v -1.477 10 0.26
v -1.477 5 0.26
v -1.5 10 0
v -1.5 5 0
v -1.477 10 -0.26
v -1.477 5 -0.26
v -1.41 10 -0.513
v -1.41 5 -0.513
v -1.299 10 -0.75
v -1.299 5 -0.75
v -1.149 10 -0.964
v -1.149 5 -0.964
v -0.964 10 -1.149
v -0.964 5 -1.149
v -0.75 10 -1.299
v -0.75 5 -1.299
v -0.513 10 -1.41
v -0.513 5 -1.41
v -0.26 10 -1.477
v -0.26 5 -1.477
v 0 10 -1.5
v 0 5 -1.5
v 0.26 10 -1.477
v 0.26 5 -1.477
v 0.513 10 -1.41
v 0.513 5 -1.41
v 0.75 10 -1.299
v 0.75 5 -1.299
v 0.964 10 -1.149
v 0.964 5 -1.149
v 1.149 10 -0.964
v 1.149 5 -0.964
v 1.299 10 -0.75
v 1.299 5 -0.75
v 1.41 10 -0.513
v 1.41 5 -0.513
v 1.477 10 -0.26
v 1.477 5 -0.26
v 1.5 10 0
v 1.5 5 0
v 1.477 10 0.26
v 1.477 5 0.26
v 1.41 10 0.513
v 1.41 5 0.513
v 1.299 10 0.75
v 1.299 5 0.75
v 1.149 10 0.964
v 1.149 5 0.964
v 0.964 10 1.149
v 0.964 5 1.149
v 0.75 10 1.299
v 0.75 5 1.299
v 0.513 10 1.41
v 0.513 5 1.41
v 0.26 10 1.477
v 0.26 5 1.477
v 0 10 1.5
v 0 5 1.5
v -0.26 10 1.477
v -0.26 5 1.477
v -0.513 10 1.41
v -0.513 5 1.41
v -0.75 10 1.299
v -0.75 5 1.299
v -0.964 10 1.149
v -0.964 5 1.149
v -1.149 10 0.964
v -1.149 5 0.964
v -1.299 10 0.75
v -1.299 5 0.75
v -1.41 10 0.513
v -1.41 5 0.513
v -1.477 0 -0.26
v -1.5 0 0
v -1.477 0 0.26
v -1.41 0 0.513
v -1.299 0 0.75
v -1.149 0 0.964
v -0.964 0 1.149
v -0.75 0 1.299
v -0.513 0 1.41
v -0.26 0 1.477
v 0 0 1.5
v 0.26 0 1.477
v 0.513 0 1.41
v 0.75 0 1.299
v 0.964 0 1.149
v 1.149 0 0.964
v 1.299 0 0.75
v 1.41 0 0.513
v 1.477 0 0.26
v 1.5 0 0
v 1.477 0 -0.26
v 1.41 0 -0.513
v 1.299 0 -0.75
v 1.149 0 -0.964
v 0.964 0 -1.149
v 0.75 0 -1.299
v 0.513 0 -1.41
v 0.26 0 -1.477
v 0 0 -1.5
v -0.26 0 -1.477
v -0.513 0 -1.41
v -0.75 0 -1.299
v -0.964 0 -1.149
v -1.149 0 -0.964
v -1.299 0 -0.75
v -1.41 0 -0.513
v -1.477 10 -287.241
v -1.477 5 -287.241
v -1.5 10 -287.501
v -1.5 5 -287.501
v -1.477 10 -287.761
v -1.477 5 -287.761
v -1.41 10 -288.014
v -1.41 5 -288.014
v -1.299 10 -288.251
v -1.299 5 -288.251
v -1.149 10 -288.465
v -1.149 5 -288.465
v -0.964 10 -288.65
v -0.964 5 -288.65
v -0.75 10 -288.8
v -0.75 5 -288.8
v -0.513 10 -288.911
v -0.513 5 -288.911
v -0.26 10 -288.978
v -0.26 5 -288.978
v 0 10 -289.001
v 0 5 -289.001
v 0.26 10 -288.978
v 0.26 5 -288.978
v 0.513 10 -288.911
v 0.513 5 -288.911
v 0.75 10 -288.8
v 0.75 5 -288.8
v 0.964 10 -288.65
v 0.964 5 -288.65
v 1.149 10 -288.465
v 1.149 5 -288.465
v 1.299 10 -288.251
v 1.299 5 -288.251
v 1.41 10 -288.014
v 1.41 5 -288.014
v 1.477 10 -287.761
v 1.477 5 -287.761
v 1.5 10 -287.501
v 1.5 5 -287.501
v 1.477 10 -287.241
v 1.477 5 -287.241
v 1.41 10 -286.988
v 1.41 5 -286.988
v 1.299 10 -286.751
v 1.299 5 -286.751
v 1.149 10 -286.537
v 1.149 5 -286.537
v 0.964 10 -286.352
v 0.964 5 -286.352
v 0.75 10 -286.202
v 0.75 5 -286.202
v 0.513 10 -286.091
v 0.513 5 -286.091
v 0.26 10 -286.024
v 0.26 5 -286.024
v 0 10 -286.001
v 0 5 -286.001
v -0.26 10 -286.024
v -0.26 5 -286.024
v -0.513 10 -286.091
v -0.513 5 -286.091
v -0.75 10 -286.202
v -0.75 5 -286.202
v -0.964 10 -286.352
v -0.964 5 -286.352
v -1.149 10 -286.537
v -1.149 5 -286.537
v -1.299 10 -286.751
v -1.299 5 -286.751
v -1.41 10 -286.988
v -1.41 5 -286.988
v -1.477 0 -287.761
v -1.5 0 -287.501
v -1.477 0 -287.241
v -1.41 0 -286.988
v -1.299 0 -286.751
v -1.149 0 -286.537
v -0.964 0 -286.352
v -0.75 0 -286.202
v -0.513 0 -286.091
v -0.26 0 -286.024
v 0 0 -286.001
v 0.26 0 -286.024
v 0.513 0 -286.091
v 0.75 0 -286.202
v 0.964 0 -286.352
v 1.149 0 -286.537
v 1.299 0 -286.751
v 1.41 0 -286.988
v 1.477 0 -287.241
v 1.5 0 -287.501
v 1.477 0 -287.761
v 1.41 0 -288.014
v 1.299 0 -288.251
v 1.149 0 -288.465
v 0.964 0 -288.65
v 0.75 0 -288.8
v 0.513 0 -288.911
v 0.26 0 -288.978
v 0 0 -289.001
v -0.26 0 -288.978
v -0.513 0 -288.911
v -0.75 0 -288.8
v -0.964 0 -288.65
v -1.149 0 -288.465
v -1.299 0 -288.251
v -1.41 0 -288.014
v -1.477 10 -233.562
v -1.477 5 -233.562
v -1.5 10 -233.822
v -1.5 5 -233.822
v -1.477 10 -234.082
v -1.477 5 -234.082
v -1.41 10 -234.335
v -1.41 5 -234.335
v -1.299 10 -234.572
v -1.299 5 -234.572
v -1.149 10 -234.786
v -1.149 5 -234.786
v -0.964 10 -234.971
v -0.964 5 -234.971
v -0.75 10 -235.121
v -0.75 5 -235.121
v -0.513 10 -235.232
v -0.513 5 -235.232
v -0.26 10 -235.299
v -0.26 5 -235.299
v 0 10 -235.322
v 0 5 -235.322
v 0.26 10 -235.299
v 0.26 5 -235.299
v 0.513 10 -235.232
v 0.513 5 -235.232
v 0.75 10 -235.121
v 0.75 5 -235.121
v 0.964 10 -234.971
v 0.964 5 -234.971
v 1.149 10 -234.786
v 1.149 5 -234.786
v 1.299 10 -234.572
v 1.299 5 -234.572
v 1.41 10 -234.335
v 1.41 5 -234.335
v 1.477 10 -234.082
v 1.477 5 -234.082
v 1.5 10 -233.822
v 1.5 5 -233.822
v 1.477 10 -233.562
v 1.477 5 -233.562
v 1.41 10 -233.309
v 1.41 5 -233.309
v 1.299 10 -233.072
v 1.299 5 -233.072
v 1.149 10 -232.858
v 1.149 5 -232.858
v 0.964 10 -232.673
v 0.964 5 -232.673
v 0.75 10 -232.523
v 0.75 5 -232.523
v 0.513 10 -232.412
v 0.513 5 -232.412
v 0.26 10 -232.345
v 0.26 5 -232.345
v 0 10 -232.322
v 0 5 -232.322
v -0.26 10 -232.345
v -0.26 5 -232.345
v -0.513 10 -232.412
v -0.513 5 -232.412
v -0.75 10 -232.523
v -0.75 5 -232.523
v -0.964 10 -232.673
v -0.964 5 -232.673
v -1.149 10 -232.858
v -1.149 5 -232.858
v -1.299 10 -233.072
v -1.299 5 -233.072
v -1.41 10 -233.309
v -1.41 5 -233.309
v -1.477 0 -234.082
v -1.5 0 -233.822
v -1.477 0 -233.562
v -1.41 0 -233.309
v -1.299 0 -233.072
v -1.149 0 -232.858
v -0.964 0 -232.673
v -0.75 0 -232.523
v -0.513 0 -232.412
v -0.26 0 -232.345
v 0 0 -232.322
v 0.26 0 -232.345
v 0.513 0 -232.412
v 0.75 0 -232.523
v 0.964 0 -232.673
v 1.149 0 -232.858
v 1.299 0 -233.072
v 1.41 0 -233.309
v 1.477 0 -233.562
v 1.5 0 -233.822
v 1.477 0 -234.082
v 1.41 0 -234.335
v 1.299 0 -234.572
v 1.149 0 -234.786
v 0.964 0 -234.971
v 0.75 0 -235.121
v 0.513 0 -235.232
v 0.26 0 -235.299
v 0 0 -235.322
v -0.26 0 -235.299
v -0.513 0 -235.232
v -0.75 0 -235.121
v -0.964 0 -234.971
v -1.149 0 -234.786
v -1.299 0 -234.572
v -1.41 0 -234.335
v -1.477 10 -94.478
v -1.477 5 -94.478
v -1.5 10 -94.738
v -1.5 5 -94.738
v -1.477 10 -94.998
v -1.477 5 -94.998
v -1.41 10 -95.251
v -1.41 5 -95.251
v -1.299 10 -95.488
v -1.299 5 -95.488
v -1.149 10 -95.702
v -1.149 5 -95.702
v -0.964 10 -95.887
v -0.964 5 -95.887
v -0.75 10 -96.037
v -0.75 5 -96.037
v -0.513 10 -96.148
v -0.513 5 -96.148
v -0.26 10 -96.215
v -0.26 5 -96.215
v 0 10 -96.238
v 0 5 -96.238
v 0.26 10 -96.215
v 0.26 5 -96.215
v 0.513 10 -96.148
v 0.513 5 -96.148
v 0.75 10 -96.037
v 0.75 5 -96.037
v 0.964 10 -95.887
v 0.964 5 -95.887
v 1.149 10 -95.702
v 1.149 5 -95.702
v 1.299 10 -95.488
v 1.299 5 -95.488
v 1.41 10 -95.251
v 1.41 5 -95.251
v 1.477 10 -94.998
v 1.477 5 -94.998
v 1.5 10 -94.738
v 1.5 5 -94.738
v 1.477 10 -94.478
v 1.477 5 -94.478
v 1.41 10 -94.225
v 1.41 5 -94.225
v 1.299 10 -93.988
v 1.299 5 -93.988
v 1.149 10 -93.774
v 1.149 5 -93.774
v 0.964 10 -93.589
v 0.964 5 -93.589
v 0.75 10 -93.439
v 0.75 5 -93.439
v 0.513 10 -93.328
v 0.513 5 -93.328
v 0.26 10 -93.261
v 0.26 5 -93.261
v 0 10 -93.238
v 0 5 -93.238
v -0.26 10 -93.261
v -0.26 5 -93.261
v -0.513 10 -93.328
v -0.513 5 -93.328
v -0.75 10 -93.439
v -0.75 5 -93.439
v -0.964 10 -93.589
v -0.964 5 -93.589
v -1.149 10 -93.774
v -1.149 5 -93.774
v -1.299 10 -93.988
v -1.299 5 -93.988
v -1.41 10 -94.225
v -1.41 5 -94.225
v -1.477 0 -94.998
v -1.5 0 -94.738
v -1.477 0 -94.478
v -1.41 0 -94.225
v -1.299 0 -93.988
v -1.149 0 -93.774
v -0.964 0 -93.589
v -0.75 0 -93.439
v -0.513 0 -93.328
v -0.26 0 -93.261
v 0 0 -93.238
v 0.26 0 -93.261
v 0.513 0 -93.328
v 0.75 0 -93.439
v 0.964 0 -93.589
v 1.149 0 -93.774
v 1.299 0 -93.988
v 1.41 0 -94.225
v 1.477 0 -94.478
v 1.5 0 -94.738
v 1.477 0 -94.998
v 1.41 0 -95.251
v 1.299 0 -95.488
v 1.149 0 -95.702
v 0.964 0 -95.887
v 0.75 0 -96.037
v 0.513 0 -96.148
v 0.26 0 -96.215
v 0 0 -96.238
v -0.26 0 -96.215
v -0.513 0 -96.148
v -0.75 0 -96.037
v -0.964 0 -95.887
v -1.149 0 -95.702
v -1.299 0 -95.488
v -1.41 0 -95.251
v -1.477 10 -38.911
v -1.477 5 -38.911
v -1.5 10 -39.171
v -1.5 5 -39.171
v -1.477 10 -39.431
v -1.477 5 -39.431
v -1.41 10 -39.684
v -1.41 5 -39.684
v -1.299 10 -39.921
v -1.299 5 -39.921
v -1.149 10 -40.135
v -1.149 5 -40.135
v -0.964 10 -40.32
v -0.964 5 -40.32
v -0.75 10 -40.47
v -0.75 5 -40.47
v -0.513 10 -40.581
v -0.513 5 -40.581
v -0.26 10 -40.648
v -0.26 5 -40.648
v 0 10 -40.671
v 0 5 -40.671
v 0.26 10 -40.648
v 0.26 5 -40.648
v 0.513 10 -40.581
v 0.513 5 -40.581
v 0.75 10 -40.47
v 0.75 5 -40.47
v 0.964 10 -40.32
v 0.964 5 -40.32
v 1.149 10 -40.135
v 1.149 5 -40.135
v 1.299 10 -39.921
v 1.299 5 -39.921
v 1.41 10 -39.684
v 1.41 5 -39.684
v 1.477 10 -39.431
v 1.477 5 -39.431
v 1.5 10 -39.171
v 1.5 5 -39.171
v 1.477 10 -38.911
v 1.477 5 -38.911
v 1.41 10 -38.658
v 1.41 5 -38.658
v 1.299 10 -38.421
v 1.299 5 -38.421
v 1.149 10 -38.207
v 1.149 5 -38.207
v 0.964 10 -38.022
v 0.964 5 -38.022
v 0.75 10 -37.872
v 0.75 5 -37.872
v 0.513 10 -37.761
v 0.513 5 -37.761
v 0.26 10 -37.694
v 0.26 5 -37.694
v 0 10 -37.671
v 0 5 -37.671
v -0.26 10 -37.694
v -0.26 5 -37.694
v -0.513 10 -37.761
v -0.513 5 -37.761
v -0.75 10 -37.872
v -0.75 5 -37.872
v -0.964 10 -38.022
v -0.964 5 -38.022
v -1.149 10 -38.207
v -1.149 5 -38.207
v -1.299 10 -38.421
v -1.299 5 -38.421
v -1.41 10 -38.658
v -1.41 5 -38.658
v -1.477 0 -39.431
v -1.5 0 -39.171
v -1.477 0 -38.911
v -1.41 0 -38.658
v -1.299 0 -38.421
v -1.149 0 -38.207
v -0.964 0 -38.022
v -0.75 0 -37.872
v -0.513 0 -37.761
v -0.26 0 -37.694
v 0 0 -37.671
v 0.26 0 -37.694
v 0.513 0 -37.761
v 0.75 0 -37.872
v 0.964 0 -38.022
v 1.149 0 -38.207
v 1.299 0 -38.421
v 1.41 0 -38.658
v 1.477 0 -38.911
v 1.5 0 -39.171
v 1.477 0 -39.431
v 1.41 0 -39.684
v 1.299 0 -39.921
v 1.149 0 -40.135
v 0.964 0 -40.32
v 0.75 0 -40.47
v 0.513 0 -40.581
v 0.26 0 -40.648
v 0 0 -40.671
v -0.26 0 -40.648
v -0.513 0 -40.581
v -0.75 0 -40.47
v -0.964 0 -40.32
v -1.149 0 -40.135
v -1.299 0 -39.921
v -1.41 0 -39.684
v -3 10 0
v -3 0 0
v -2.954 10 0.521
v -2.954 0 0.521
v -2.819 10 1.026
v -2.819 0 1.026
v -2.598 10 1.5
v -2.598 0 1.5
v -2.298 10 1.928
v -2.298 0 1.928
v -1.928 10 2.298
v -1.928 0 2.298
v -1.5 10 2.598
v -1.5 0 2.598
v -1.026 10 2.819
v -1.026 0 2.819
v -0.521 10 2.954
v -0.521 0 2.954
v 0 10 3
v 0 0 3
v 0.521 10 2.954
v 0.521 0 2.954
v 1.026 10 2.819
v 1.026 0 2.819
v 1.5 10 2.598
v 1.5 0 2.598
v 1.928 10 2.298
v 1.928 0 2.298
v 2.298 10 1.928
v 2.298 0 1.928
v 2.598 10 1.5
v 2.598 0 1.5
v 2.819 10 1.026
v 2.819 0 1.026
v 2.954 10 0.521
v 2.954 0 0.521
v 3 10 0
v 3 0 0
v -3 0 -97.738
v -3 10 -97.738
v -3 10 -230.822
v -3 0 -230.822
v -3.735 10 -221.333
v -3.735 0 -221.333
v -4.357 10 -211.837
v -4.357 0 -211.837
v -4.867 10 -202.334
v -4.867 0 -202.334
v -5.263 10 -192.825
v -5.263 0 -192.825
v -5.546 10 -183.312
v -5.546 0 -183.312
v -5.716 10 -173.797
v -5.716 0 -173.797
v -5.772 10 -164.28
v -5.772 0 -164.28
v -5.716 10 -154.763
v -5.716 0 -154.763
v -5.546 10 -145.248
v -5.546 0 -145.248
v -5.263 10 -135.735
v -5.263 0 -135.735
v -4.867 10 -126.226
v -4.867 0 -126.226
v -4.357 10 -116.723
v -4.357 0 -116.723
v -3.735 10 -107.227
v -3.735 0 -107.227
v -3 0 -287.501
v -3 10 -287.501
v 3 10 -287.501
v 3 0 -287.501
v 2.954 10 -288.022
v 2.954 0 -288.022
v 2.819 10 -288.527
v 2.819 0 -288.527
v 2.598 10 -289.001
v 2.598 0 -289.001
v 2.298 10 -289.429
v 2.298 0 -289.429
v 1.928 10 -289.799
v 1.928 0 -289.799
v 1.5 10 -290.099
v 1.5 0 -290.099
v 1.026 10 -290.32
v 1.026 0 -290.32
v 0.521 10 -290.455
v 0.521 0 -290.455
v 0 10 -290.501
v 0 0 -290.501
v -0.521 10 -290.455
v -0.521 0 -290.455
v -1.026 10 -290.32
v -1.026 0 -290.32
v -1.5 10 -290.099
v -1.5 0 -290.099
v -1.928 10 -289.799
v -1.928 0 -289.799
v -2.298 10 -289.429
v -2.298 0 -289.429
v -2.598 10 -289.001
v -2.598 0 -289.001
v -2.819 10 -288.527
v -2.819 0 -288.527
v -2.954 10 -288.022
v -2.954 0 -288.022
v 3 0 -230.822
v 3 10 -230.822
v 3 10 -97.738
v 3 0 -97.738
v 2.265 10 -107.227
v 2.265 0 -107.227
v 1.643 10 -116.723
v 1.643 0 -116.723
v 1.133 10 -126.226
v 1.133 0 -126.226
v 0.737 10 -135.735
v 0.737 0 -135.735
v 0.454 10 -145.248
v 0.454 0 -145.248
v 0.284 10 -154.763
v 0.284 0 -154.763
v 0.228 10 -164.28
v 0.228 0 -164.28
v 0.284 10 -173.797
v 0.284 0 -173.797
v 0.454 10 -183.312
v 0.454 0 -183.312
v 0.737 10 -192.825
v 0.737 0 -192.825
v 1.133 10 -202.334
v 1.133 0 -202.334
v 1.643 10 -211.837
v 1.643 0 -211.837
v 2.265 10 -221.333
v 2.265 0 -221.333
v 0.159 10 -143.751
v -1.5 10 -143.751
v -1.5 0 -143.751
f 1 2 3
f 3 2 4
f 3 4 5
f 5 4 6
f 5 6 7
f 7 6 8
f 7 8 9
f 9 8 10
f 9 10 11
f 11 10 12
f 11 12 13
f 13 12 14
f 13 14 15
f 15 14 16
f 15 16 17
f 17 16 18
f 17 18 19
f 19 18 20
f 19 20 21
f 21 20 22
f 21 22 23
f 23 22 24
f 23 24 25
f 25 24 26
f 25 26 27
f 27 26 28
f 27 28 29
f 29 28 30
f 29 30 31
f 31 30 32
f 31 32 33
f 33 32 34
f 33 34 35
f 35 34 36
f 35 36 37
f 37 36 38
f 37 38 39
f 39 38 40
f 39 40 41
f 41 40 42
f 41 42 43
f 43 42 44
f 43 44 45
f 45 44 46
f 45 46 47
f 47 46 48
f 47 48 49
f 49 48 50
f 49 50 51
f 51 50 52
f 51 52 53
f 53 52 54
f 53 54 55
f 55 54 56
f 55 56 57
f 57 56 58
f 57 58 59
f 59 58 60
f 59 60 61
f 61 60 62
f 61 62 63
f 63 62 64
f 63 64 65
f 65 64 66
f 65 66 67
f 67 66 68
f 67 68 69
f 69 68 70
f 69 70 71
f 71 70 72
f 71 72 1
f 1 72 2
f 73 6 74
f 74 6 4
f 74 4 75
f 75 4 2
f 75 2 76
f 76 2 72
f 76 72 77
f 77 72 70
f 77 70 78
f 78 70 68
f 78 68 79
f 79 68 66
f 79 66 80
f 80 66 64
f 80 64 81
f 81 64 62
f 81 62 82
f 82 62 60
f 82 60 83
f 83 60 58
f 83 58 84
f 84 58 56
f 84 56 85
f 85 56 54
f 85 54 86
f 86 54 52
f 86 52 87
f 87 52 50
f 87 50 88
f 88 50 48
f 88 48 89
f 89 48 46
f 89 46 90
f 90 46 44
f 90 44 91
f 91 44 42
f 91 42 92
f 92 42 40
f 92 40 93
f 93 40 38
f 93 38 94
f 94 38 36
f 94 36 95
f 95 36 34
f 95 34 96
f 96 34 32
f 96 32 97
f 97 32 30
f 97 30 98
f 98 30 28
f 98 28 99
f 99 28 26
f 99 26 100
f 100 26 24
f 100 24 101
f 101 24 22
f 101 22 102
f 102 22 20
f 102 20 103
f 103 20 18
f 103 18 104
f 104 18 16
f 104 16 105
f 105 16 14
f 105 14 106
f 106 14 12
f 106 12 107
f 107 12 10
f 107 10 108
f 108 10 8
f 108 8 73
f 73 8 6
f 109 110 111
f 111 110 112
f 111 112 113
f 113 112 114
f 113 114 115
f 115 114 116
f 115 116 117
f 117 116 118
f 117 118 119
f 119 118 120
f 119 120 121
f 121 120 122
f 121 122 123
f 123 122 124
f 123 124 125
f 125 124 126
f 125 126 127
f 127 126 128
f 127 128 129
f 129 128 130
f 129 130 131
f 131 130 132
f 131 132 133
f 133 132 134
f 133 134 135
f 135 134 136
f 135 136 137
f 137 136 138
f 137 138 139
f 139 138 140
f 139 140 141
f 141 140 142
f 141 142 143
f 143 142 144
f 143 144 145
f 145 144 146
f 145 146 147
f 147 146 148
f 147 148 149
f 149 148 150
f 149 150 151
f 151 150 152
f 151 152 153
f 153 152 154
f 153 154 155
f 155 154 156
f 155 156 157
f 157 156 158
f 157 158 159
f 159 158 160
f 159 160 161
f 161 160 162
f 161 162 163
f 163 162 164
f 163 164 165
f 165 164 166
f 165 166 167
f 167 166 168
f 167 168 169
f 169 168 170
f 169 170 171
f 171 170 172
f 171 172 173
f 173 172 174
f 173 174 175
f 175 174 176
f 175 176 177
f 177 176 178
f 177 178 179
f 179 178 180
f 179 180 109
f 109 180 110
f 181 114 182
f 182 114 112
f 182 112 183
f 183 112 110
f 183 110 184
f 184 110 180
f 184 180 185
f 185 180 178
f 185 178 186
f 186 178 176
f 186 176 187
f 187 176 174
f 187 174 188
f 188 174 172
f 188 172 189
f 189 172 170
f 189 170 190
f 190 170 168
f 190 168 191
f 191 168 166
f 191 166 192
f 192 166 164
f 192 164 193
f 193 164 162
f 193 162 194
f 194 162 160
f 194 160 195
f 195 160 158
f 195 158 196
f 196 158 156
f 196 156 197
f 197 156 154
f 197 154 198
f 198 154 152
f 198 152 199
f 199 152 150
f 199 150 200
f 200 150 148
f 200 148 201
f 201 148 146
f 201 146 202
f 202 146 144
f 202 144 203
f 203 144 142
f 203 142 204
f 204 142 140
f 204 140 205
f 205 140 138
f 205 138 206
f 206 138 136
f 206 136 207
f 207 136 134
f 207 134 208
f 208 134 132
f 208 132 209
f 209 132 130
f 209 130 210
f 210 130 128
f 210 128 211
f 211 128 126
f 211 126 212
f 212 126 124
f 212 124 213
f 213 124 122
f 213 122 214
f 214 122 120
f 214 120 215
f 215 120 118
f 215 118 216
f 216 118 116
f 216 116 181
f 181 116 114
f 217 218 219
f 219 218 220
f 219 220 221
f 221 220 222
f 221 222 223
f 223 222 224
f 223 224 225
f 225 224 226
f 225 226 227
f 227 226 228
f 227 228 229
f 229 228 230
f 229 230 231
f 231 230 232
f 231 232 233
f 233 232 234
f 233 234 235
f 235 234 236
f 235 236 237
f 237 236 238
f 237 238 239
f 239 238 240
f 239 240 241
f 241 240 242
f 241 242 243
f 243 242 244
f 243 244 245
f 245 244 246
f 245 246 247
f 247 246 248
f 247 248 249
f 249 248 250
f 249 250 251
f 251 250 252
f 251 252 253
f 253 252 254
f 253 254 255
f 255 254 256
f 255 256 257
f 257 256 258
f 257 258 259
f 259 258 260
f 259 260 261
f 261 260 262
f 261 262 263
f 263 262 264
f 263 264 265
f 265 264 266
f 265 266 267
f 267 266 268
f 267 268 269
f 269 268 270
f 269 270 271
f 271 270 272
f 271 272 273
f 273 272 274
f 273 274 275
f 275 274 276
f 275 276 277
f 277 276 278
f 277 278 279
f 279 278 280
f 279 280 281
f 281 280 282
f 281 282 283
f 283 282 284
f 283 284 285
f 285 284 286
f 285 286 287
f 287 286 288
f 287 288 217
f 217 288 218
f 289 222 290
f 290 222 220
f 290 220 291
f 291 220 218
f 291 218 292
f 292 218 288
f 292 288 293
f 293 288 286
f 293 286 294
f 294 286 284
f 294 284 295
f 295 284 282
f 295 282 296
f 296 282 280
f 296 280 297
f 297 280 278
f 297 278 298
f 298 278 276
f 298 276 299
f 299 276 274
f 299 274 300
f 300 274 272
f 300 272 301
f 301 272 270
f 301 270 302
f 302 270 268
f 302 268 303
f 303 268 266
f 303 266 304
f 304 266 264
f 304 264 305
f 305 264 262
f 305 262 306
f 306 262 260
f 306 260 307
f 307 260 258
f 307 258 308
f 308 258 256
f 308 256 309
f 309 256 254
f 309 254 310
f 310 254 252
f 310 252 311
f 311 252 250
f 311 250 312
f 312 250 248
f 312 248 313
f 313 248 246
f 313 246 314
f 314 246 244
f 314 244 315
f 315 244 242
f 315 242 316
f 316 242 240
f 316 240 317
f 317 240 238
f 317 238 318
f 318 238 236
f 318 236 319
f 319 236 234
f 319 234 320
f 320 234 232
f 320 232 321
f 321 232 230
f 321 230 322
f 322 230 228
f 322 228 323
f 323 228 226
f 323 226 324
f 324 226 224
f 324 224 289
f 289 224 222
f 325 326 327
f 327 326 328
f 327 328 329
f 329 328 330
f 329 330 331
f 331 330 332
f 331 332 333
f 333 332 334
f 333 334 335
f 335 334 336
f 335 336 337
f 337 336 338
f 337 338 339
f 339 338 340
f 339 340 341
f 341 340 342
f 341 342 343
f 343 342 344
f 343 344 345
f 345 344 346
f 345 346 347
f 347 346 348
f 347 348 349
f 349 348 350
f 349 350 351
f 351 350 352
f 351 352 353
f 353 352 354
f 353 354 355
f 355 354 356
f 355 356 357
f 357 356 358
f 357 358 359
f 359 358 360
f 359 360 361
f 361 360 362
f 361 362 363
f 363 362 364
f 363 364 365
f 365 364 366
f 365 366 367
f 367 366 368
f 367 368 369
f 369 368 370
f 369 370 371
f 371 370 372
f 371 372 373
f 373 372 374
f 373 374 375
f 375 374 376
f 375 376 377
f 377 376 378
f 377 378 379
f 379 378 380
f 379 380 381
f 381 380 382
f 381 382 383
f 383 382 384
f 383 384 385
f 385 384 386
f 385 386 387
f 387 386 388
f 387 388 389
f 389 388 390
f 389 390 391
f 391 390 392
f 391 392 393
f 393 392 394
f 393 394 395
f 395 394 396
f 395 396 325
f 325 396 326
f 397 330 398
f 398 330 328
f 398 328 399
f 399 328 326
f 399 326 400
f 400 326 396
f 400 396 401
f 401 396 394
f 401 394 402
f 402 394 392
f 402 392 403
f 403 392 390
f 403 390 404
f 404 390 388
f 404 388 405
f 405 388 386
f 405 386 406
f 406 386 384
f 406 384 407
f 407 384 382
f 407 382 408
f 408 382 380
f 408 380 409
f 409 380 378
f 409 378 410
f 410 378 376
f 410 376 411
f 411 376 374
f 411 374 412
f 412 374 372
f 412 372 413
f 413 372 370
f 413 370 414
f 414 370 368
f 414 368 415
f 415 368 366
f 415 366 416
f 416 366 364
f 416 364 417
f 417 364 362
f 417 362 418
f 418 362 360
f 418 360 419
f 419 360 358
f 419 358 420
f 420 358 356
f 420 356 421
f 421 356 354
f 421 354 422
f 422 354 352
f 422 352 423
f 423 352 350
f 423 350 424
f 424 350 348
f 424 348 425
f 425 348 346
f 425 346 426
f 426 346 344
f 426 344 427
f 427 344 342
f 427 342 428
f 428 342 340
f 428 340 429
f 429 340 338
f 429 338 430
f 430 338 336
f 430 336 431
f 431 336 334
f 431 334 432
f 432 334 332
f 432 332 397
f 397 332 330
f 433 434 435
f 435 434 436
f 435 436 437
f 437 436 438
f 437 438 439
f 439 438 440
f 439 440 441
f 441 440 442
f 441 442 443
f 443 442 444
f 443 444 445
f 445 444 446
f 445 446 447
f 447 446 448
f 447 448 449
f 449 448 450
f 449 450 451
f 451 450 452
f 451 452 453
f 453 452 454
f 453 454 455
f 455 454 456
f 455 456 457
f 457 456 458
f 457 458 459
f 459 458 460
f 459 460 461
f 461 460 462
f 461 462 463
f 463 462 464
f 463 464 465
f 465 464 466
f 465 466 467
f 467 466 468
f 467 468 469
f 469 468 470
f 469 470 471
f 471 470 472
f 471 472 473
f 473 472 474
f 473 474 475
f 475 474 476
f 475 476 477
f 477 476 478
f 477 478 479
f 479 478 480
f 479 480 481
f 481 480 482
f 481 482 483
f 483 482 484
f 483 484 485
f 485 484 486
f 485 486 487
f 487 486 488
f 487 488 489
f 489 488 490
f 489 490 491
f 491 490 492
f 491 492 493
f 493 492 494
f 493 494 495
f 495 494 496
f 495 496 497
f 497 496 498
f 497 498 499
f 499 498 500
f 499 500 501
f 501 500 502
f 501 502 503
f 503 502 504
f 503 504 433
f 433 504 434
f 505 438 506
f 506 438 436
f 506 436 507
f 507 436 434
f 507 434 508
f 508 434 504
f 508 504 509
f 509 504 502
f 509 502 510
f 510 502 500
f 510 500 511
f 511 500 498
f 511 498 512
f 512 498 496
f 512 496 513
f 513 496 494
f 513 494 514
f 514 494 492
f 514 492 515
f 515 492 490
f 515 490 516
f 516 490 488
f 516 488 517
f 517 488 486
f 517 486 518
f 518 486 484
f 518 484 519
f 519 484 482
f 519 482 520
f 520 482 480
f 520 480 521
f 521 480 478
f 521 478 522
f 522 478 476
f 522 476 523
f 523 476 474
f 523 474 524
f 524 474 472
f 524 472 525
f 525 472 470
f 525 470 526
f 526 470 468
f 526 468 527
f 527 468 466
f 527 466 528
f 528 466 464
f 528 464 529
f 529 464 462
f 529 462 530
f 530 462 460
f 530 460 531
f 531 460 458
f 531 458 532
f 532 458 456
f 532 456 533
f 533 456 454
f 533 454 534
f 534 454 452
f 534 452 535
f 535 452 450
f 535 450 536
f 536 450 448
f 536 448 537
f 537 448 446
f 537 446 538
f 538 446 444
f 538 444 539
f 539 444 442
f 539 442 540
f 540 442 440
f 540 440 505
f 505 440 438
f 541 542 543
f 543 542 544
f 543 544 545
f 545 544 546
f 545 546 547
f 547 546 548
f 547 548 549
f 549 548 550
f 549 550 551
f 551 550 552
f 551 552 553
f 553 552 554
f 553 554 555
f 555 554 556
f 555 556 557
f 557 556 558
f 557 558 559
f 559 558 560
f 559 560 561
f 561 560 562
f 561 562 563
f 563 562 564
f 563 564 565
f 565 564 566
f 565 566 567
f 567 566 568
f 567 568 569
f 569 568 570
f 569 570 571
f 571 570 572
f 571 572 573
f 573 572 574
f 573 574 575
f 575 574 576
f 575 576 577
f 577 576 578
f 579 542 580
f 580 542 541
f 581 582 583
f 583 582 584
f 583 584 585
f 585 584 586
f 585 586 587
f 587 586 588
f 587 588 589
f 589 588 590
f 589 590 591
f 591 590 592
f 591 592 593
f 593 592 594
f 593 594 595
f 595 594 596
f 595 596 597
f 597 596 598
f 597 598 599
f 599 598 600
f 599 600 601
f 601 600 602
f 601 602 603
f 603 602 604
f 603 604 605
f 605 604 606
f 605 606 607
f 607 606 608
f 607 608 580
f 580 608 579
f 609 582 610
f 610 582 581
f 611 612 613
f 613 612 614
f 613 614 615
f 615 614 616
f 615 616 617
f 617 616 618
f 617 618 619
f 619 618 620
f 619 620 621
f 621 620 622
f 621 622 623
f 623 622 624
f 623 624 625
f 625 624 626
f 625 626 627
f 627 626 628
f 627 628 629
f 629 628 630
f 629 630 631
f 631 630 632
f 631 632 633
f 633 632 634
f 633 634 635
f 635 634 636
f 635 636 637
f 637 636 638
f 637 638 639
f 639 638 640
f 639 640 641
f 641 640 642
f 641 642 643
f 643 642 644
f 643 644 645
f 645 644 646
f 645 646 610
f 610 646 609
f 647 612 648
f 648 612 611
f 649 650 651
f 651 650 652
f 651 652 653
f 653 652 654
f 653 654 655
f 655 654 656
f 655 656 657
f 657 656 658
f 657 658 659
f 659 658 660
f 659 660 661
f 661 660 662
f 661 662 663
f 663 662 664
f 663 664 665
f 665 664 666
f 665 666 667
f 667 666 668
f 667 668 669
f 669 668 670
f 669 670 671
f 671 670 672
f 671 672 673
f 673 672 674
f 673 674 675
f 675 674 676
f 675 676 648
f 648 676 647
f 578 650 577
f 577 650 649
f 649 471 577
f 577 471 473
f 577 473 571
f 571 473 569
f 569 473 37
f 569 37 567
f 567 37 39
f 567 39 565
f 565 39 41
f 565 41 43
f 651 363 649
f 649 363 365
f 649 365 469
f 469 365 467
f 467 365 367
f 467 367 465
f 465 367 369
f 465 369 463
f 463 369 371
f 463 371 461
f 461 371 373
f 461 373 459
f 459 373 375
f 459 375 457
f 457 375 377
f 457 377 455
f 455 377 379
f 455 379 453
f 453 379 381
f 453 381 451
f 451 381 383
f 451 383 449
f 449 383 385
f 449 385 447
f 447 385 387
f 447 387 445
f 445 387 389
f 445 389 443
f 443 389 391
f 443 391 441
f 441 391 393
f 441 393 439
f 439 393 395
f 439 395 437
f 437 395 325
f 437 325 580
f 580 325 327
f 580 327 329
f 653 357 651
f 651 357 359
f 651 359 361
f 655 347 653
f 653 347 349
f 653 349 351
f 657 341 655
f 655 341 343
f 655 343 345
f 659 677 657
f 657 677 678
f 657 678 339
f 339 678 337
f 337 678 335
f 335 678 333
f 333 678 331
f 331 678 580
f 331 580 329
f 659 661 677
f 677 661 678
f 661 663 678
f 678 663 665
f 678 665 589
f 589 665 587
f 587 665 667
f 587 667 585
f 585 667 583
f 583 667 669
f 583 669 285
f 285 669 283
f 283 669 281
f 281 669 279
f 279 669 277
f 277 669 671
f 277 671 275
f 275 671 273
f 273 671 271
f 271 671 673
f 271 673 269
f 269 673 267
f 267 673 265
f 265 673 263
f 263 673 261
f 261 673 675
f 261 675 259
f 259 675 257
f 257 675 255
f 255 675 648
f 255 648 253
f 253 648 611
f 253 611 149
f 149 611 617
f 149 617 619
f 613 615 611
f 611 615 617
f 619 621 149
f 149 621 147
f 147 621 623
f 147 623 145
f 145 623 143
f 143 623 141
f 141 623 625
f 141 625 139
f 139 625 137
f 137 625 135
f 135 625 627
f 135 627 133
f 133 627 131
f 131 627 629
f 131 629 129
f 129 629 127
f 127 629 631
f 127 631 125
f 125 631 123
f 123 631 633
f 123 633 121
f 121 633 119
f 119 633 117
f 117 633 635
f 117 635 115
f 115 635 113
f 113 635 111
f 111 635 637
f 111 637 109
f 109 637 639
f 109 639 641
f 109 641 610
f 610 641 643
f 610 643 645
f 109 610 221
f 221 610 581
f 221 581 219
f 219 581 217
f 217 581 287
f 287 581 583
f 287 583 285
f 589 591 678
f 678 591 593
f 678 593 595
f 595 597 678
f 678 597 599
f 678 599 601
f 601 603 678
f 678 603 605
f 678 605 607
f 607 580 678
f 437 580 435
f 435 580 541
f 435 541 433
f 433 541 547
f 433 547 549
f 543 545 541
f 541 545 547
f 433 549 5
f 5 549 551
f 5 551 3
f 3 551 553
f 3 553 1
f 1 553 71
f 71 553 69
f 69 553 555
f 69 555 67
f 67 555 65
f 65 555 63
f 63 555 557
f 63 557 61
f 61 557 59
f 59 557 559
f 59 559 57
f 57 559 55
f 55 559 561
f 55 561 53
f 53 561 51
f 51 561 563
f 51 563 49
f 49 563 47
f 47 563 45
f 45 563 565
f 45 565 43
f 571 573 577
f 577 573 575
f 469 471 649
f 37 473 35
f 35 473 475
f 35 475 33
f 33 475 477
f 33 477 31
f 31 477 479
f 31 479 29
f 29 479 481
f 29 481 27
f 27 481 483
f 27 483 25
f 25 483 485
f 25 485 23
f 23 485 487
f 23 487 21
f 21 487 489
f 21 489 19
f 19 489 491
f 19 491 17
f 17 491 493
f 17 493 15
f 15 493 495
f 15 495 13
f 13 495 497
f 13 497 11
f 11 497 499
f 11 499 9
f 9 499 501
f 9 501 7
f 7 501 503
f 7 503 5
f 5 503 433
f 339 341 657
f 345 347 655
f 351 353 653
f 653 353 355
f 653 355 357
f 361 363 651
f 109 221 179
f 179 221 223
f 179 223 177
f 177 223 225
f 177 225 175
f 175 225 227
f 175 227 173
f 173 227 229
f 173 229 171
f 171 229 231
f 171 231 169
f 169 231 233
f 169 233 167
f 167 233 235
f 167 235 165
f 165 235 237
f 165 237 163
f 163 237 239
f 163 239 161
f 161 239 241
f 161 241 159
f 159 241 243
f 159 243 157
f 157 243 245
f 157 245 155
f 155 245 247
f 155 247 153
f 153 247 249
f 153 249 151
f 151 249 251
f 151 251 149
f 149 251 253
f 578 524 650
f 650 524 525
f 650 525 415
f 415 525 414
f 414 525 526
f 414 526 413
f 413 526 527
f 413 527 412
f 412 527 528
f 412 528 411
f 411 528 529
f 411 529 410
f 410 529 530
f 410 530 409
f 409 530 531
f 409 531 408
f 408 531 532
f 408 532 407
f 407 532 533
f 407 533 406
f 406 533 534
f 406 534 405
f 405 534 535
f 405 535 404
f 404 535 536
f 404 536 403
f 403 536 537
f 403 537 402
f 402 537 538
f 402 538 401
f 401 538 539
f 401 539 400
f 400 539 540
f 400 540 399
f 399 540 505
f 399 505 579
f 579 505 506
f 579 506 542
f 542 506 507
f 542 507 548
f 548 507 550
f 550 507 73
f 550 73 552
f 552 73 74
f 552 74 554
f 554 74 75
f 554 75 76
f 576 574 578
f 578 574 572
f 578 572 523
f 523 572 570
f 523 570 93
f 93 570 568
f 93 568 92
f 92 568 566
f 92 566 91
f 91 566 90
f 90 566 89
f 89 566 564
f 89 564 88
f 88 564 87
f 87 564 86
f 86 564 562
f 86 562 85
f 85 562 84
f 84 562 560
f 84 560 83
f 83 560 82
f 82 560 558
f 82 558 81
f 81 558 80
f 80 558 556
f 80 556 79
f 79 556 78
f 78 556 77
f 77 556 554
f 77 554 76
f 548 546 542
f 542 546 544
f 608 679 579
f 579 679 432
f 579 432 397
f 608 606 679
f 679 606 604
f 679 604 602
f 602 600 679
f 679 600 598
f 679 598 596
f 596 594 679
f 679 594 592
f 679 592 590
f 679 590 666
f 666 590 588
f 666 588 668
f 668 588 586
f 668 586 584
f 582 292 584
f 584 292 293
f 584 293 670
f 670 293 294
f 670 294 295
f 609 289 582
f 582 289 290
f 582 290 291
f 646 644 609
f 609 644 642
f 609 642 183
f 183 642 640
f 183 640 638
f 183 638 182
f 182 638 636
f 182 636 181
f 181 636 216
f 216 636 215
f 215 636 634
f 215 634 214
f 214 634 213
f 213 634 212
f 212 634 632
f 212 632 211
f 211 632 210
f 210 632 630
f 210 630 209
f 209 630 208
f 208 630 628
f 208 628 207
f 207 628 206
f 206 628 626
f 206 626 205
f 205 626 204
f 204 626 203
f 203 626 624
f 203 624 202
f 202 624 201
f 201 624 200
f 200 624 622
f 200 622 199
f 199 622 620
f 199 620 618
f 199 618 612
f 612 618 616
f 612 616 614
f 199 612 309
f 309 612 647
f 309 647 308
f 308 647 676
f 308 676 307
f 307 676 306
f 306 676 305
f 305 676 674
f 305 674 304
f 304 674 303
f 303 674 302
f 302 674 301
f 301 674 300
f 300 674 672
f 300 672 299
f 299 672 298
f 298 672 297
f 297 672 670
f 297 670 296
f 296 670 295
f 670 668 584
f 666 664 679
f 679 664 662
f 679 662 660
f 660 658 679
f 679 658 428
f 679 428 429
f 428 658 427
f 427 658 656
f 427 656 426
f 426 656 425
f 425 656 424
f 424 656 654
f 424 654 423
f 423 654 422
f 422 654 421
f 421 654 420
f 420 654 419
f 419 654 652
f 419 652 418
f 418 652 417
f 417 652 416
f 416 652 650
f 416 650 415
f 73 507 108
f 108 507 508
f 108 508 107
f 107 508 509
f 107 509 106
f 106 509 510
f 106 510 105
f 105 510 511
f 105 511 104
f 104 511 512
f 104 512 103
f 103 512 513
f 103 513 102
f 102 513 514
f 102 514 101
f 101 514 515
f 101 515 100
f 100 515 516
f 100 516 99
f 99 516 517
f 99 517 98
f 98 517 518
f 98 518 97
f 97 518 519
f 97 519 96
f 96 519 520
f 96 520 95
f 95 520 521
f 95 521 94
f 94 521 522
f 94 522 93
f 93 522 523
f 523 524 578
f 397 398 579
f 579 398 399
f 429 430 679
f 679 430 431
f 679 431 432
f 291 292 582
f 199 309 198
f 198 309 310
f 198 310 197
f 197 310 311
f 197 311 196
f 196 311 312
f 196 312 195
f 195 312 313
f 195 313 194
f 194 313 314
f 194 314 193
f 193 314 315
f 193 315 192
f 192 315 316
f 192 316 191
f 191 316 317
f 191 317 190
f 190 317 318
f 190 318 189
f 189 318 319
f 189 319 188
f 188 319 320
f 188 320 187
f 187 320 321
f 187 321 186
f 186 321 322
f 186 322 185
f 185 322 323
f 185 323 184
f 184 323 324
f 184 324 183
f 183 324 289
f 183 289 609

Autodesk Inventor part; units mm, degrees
ref_plane "YZ Plane" through (0, 0, 0) normal (1, 0, 0) x (0, 1, 0)
ref_plane "XZ Plane" through (0, 0, 0) normal (0, 1, 0) x (-1, 0, 0)
ref_plane "XY Plane" through (0, 0, 0) normal (0, 0, 1) x (1, 0, 0)
sketch "Sketch1" plane through (0, 0, 0) normal (0, 1, 0) x (-1, 0, 0)
  line L0 (0, 0) -> (0, -287.501) construction
  line L1 (-3, 0) -> (-3, -287.501)
  line L2 (3, -287.501) -> (3, 0)
  arc A0 (3, 0) -> (-3, 0) centre (0, 0) ccw
  arc A1 (-3, -287.501) -> (3, -287.501) centre (0, -287.501) ccw
  circle A2 centre (0, 0) radius 1.5
  circle A3 centre (0, -287.501) radius 1.5
  circle A4 centre (0, -39.171) radius 1.5
  circle A5 centre (0, -94.738) radius 1.5
  circle A6 centre (0, -233.822) radius 1.5
  arc A7 (-3, -230.822) -> (-3, -97.738) centre (-800.2278, -164.28) ccw
  arc A8 (3, -230.822) -> (3, -97.738) centre (-794.2278, -164.28) ccw
  point P0 (0, -143.7505)
  dimension "d0" = 6
  dimension "d1" = 287.501
  dimension "d2" = 3
  dimension "d3" = 3
  dimension "d14" = 3
  dimension "d15" = 39.171
  dimension "d16" = 3
  dimension "d17" = 94.738
  dimension "d18" = 3
  dimension "d19" = 233.822
  dimension "d20" = 800
  dimension "d21" = 800
  dimension "d22" = 3
  dimension "d23" = 3
extrude "Extrusion1" add sketch "Sketch1" along normal blind 10 contours A0 L2 A1 L1 A7 | A8 L2
